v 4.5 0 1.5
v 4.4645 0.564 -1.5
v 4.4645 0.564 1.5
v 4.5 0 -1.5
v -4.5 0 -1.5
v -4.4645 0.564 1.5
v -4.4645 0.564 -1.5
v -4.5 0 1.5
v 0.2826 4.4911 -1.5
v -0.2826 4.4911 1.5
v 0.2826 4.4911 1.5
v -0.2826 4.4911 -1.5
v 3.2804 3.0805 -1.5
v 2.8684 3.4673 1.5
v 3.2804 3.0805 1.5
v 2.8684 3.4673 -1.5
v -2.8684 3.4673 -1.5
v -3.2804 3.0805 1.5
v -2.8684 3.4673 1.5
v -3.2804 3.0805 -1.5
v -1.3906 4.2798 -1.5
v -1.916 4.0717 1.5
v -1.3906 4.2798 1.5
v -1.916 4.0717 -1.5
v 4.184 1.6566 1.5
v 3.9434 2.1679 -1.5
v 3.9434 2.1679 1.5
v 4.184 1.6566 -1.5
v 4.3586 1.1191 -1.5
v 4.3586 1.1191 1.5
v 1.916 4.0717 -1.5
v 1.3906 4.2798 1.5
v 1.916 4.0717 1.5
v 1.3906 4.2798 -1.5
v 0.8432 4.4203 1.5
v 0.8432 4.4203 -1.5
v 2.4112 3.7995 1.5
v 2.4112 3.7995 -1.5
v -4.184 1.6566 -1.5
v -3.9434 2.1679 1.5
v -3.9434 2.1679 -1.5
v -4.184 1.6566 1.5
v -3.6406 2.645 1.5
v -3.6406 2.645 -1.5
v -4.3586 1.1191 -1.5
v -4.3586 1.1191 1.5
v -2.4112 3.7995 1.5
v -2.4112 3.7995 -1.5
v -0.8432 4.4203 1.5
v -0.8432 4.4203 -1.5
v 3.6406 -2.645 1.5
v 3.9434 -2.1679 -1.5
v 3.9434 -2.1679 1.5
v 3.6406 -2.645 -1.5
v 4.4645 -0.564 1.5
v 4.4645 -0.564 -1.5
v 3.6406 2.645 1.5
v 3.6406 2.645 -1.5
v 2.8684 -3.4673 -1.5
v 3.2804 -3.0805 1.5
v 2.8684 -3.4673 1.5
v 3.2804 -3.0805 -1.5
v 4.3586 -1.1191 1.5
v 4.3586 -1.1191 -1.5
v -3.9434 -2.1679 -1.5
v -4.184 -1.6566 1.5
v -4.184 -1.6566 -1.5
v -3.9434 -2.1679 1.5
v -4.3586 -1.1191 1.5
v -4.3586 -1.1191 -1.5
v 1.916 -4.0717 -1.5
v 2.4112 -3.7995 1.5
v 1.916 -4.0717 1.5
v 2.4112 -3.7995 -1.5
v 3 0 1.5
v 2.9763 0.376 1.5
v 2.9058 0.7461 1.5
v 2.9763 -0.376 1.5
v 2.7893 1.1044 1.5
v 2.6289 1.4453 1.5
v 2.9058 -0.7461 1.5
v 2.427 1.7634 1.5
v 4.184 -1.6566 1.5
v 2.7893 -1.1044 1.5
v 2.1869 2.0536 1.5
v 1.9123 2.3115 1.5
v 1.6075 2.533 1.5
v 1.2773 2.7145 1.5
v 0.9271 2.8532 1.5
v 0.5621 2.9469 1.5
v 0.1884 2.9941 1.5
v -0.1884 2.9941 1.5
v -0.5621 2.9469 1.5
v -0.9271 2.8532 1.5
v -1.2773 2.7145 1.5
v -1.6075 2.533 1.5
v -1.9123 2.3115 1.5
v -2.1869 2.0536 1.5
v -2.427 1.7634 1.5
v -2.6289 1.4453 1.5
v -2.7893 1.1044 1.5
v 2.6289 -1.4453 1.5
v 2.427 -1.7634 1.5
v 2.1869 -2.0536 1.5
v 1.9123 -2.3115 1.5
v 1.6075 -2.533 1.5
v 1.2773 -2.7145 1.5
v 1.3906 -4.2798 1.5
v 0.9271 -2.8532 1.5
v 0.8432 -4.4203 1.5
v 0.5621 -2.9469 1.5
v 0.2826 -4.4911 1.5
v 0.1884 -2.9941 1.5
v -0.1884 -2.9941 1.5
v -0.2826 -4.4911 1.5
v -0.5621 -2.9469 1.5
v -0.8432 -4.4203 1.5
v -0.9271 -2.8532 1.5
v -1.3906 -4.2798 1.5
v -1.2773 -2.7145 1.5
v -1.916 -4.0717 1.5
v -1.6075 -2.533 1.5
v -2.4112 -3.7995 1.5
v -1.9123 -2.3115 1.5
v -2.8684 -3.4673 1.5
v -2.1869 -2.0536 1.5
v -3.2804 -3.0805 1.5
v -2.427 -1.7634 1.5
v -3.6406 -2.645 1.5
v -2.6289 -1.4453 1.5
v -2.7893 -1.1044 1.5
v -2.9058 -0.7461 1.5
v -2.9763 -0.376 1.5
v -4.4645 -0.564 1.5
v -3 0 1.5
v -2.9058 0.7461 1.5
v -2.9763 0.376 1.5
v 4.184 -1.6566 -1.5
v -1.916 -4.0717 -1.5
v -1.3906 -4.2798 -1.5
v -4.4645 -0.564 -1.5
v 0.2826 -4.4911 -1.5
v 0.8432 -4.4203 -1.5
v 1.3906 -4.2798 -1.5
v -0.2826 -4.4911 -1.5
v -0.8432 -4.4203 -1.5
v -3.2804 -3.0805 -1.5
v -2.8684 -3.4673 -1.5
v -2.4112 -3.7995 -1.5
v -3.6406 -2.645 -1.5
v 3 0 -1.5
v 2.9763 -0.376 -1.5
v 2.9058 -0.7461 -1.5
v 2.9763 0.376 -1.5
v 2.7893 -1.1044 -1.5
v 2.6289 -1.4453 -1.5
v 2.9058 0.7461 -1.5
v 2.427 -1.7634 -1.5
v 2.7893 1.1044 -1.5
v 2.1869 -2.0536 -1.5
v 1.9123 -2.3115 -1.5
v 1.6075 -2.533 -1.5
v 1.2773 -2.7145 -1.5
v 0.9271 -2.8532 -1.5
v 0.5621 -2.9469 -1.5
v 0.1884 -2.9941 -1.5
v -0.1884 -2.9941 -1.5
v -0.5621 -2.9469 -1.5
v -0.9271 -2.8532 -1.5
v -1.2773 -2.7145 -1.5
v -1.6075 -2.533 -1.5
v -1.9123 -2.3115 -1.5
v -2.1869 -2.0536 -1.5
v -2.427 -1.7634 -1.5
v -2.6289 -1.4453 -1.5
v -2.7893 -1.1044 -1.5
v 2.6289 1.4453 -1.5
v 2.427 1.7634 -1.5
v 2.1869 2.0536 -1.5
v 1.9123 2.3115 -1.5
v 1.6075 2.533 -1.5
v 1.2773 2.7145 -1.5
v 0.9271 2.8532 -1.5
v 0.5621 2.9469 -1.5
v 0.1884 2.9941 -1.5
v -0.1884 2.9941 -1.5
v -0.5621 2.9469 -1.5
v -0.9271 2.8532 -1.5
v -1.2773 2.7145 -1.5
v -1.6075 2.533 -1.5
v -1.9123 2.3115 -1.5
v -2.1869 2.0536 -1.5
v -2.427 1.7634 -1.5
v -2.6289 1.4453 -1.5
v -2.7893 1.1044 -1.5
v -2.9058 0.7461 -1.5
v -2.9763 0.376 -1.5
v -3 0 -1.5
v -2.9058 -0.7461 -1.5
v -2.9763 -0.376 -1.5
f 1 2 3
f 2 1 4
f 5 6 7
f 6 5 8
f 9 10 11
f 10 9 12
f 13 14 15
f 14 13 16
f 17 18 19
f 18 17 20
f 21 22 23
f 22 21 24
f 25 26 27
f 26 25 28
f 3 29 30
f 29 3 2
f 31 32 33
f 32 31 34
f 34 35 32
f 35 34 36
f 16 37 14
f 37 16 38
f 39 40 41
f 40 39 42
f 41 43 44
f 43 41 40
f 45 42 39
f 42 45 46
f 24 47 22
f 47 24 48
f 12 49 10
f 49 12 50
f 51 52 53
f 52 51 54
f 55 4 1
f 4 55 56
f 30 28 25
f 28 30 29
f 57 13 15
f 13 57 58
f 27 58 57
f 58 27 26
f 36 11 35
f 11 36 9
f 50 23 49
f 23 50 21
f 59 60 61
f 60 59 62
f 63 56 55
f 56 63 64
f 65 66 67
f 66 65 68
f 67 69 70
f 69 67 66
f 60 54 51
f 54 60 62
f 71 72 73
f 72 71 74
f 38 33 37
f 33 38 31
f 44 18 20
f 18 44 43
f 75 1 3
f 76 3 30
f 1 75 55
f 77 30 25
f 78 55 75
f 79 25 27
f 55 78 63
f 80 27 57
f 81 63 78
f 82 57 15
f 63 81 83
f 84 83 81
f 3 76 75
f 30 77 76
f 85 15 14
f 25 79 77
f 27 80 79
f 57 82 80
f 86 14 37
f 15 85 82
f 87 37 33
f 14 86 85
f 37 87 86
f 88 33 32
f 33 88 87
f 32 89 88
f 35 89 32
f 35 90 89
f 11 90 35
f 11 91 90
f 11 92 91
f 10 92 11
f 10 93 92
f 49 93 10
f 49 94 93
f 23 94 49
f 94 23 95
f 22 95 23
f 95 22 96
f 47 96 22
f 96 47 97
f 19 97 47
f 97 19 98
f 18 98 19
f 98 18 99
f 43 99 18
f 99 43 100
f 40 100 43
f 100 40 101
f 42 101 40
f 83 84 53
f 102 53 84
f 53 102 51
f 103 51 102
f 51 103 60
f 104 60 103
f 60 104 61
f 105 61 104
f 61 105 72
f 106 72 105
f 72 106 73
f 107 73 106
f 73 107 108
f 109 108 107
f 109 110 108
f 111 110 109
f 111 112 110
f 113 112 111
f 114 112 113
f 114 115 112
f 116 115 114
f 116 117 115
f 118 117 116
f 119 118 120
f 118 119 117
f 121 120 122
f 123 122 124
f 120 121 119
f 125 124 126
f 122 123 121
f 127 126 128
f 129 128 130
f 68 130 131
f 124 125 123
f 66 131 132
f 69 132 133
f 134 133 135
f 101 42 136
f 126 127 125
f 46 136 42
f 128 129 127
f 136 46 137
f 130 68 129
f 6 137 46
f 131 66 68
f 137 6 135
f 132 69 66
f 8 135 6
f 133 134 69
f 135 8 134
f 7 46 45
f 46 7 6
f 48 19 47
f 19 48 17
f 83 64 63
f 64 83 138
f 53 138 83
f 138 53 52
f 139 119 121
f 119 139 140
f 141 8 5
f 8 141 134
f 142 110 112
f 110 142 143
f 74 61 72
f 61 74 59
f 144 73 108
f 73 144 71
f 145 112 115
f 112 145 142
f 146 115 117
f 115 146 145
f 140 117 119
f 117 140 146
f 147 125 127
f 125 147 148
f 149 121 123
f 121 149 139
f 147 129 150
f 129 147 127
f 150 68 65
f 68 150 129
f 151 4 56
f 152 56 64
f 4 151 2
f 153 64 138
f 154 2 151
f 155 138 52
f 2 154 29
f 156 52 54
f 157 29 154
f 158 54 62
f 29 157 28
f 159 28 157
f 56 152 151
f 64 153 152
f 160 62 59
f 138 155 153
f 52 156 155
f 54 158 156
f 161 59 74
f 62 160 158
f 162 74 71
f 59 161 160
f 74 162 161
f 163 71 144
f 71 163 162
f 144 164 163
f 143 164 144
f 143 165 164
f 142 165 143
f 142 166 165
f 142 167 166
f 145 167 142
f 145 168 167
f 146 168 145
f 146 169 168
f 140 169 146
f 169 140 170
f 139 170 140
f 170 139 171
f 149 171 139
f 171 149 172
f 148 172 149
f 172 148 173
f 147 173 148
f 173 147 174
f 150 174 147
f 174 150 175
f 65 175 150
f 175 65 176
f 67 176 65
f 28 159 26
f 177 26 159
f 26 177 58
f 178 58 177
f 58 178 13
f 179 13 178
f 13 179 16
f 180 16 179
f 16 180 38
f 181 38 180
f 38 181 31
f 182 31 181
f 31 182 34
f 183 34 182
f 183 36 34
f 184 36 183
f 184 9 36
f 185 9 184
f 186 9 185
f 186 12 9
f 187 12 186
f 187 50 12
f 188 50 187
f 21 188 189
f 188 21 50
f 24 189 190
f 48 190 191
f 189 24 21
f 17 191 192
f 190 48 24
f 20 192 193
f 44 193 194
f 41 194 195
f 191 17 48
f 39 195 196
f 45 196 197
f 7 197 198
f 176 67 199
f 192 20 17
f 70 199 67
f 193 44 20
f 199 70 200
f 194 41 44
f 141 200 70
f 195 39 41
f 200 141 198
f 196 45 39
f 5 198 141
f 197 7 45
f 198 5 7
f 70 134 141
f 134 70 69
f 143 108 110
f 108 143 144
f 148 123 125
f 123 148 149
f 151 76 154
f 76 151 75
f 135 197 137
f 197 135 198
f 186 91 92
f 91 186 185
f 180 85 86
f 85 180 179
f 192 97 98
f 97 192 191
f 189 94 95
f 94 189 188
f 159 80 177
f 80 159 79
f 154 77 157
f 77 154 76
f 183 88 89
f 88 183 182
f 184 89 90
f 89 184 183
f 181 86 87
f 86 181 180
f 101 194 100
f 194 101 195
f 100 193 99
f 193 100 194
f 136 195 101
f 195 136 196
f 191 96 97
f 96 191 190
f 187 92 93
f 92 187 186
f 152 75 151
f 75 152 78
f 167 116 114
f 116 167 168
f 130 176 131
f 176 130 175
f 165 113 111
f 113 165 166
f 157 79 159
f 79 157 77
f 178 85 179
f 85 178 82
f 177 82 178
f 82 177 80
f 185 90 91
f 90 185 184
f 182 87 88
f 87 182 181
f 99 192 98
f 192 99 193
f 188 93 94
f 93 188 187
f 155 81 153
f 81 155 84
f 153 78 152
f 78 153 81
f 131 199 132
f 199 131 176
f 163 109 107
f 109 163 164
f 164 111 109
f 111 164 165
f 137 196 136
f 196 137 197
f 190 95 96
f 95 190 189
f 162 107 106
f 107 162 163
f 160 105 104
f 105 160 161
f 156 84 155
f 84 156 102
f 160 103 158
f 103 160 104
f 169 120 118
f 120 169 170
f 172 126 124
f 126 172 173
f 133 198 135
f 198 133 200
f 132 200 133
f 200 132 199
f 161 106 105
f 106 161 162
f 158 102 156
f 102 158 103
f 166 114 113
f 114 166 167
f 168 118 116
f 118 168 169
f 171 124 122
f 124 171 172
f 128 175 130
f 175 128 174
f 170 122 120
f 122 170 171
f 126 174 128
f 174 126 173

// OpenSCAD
$fn = 50;


difference() {
	union() {
		translate(v = [0, 0, -1.5000000000]) {
			cylinder(h = 3, r = 4.5000000000);
		}
	}
	union() {
		translate(v = [0, 0, -100.0000000000]) {
			cylinder(h = 200, r = 3.0000000000);
		}
	}
}
